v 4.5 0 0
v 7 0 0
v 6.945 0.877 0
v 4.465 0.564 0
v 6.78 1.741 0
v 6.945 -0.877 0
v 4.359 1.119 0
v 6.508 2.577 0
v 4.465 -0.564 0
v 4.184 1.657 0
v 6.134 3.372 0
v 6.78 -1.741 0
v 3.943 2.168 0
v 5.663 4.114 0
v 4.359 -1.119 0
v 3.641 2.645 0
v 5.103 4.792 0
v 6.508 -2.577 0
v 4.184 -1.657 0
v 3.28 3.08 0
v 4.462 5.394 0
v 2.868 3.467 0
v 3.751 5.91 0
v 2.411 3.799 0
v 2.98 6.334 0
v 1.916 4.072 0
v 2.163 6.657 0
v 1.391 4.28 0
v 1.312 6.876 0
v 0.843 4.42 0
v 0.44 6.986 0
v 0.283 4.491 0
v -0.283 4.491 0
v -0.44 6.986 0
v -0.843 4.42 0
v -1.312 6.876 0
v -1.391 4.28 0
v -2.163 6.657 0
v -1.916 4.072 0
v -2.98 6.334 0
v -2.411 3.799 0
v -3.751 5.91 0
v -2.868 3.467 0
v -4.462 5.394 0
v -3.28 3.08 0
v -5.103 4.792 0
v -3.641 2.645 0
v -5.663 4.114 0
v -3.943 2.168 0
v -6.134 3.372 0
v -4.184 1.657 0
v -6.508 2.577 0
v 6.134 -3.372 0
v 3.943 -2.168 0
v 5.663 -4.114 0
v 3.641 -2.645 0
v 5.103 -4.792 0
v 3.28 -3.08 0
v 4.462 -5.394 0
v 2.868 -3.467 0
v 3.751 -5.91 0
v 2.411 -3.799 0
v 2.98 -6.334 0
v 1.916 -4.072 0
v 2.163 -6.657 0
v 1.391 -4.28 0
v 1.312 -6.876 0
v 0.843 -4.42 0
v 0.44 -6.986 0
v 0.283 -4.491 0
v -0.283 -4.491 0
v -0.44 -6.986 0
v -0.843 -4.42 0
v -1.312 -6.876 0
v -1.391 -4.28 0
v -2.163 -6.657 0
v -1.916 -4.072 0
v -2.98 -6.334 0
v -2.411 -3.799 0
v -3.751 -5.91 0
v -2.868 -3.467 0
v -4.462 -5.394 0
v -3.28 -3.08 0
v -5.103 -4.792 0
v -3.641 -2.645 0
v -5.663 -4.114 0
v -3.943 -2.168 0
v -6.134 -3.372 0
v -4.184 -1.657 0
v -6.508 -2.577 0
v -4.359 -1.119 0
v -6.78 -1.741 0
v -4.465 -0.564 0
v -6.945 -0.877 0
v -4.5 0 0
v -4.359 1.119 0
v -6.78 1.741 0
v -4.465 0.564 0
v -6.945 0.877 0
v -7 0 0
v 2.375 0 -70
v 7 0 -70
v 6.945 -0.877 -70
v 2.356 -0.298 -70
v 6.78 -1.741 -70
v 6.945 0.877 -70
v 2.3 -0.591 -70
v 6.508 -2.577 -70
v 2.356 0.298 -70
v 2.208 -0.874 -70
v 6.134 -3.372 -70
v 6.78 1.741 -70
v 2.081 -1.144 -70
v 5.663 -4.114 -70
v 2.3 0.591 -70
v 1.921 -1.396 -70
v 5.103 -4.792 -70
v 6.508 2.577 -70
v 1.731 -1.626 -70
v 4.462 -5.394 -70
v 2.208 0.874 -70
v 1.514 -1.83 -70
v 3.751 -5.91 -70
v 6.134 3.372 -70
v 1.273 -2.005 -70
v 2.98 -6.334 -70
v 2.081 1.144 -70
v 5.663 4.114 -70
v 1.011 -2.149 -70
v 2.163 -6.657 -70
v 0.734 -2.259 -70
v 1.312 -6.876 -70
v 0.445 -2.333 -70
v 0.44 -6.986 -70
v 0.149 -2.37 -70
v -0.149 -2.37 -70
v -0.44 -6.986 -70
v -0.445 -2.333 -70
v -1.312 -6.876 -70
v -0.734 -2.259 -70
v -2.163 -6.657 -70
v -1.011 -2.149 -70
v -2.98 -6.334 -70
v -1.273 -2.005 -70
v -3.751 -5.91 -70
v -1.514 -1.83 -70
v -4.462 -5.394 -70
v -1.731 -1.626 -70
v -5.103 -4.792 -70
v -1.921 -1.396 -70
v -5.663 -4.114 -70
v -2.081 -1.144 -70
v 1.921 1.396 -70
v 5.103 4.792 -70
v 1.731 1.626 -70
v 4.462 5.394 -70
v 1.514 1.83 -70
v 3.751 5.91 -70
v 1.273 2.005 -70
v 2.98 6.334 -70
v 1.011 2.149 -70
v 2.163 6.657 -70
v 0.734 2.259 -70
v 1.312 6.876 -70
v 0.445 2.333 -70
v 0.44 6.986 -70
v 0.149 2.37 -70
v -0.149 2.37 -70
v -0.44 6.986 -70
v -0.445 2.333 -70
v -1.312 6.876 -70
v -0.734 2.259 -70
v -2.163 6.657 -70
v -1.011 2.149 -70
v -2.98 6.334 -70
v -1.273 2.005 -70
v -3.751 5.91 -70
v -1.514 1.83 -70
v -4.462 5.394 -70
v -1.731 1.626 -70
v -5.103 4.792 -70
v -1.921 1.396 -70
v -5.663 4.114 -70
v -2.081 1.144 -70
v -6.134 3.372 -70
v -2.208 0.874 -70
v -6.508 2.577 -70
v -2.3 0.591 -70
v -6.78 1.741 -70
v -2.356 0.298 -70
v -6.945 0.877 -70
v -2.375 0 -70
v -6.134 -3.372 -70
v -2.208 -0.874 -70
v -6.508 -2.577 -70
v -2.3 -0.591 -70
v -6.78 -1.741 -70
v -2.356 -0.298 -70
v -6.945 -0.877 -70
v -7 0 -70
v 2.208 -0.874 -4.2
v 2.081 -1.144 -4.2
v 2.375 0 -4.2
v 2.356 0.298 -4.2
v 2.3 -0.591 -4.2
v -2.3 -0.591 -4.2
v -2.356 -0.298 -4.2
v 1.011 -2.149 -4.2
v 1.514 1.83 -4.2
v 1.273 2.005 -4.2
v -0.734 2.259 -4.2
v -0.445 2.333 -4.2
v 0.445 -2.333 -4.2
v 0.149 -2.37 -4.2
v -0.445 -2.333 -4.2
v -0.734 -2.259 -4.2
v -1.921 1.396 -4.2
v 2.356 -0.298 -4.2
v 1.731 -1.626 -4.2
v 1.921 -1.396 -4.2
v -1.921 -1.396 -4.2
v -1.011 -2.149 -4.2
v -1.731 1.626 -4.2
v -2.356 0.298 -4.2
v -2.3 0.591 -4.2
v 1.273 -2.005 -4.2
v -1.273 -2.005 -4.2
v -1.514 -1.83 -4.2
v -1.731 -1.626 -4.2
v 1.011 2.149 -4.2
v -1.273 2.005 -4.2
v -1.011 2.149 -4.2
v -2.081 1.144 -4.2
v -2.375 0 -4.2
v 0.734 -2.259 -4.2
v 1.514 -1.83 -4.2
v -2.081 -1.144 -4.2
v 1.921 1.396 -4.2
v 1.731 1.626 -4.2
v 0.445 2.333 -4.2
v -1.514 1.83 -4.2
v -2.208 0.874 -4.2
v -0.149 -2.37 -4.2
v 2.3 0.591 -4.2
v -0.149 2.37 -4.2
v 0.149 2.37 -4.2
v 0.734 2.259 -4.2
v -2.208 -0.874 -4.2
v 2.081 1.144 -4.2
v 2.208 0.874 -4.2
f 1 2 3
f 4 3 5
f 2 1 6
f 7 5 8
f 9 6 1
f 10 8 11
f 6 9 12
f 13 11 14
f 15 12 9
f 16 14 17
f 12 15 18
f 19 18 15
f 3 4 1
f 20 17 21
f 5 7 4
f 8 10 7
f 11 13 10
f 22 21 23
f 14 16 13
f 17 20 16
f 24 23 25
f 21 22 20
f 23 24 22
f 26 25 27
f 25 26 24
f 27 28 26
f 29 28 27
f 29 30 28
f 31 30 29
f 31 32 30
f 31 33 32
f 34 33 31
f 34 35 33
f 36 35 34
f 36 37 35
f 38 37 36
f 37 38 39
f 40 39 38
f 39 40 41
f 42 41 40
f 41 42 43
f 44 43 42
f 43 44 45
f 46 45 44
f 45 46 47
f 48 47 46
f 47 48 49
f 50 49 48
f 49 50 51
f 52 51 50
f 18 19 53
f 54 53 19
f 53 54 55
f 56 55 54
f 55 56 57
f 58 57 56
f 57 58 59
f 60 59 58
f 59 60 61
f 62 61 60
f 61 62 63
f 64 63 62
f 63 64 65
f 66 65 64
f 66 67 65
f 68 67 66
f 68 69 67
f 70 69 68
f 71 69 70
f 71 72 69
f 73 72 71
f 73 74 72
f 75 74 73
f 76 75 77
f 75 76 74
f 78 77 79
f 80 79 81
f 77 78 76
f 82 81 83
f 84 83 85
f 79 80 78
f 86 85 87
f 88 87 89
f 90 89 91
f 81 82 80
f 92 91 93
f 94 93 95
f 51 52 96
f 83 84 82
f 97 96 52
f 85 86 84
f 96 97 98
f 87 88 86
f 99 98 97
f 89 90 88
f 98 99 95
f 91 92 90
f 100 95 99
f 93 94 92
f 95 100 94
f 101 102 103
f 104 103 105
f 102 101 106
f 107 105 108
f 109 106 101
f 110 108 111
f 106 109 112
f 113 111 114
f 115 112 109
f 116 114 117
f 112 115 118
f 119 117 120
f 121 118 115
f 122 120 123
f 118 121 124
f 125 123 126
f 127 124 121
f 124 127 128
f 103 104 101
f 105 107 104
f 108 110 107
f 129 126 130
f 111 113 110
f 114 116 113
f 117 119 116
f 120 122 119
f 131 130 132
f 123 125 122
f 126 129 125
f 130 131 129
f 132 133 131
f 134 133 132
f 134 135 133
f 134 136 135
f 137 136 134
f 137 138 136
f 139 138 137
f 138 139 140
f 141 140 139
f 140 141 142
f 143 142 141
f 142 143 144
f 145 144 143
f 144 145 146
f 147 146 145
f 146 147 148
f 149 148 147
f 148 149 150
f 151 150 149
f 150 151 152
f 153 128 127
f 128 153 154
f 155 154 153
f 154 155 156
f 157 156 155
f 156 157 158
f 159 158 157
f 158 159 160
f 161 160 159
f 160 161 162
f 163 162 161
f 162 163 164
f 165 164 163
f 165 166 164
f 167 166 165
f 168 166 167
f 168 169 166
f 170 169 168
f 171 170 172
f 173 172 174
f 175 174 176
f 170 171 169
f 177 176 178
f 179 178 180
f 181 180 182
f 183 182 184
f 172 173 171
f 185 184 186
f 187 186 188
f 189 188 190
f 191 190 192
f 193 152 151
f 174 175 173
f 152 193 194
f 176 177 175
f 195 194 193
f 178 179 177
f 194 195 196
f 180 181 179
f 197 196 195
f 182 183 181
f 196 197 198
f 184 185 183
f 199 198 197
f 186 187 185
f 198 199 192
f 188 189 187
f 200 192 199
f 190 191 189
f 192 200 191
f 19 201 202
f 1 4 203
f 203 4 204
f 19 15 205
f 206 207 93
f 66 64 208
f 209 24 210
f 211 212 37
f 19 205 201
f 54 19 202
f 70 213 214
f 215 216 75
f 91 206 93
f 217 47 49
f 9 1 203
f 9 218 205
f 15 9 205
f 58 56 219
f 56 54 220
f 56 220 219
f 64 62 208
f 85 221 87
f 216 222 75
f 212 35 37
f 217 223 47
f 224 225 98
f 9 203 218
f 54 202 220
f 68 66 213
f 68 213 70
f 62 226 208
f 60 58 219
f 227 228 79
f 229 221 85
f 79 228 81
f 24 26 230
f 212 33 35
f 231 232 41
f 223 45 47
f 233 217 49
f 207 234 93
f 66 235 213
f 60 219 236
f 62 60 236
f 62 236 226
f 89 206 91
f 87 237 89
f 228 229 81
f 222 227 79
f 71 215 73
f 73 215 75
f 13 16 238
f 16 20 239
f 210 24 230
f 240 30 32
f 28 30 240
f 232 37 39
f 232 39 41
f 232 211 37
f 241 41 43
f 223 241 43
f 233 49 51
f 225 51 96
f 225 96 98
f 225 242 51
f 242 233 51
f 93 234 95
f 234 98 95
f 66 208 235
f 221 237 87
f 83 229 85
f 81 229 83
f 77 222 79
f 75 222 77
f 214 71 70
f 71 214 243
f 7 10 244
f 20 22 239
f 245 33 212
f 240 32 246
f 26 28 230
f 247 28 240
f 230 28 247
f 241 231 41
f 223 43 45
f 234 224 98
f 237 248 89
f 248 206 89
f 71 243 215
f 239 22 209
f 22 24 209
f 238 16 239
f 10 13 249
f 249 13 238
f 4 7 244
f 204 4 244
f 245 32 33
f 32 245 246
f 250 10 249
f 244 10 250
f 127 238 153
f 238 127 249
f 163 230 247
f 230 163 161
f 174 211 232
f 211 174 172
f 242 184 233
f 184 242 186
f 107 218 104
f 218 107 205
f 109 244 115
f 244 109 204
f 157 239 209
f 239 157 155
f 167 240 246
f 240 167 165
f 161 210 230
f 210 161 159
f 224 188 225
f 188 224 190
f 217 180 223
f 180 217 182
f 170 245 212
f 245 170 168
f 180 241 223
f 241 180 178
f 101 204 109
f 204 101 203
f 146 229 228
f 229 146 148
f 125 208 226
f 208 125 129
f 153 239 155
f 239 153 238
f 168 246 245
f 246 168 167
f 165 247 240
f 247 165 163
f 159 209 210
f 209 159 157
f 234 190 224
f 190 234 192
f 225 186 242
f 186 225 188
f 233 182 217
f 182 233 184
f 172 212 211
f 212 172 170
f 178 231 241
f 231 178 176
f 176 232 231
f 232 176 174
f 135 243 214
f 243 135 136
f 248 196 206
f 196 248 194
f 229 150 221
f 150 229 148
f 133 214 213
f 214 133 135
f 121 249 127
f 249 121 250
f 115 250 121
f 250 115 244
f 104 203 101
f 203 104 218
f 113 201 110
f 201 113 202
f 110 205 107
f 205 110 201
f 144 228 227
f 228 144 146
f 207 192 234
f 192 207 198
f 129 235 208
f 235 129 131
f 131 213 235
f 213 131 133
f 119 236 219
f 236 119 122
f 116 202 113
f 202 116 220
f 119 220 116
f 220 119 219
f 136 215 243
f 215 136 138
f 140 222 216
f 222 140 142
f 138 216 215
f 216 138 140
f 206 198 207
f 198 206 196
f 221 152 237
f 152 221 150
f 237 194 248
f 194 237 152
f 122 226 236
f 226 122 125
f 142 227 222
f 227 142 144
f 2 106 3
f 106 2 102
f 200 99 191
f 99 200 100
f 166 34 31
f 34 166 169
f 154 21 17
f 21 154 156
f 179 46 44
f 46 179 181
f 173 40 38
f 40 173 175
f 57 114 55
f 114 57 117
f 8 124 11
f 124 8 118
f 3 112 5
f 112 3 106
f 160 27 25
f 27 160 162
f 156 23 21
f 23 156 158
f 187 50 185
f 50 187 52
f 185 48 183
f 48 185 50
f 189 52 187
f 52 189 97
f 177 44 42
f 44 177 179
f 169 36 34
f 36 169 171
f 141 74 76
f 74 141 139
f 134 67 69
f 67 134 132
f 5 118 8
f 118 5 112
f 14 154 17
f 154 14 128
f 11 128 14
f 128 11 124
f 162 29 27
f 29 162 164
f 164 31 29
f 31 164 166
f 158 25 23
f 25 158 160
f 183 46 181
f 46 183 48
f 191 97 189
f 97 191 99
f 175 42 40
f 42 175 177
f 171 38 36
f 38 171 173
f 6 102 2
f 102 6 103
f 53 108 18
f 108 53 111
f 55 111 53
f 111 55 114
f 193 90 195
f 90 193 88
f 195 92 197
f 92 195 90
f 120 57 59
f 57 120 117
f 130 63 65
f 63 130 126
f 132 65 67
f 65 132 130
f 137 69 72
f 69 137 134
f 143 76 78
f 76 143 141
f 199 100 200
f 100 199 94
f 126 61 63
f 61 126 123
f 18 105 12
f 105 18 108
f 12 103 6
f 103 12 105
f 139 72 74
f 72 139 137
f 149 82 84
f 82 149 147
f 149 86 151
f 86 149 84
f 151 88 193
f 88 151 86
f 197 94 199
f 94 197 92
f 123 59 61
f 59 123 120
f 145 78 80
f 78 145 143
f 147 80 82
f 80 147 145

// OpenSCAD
$fn = 50;


difference() {
	union() {
		translate(v = [0, 0, -70.0000000000]) {
			cylinder(h = 70, r = 7.0000000000);
		}
		cylinder(h = 0, r = 10.0000000000);
	}
	union() {
		translate(v = [0, 0, 0]) {
			rotate(a = [0, 0, 0]) {
				difference() {
					union() {
						#translate(v = [0, 0, -70.0000000000]) {
							cylinder(h = 70, r = 2.2500000000);
						}
						#translate(v = [0, 0, -4.2000000000]) {
							cylinder(h = 4.2000000000, r = 7.0000000000, r1 = 2.3750000000, r2 = 4.5000000000);
						}
						#translate(v = [0, 0, -70.0000000000]) {
							cylinder(h = 70, r = 2.3750000000);
						}
						#translate(v = [0, 0, -70.0000000000]) {
							cylinder(h = 70, r = 2.2500000000);
						}
					}
					union();
				}
			}
		}
	}
}
